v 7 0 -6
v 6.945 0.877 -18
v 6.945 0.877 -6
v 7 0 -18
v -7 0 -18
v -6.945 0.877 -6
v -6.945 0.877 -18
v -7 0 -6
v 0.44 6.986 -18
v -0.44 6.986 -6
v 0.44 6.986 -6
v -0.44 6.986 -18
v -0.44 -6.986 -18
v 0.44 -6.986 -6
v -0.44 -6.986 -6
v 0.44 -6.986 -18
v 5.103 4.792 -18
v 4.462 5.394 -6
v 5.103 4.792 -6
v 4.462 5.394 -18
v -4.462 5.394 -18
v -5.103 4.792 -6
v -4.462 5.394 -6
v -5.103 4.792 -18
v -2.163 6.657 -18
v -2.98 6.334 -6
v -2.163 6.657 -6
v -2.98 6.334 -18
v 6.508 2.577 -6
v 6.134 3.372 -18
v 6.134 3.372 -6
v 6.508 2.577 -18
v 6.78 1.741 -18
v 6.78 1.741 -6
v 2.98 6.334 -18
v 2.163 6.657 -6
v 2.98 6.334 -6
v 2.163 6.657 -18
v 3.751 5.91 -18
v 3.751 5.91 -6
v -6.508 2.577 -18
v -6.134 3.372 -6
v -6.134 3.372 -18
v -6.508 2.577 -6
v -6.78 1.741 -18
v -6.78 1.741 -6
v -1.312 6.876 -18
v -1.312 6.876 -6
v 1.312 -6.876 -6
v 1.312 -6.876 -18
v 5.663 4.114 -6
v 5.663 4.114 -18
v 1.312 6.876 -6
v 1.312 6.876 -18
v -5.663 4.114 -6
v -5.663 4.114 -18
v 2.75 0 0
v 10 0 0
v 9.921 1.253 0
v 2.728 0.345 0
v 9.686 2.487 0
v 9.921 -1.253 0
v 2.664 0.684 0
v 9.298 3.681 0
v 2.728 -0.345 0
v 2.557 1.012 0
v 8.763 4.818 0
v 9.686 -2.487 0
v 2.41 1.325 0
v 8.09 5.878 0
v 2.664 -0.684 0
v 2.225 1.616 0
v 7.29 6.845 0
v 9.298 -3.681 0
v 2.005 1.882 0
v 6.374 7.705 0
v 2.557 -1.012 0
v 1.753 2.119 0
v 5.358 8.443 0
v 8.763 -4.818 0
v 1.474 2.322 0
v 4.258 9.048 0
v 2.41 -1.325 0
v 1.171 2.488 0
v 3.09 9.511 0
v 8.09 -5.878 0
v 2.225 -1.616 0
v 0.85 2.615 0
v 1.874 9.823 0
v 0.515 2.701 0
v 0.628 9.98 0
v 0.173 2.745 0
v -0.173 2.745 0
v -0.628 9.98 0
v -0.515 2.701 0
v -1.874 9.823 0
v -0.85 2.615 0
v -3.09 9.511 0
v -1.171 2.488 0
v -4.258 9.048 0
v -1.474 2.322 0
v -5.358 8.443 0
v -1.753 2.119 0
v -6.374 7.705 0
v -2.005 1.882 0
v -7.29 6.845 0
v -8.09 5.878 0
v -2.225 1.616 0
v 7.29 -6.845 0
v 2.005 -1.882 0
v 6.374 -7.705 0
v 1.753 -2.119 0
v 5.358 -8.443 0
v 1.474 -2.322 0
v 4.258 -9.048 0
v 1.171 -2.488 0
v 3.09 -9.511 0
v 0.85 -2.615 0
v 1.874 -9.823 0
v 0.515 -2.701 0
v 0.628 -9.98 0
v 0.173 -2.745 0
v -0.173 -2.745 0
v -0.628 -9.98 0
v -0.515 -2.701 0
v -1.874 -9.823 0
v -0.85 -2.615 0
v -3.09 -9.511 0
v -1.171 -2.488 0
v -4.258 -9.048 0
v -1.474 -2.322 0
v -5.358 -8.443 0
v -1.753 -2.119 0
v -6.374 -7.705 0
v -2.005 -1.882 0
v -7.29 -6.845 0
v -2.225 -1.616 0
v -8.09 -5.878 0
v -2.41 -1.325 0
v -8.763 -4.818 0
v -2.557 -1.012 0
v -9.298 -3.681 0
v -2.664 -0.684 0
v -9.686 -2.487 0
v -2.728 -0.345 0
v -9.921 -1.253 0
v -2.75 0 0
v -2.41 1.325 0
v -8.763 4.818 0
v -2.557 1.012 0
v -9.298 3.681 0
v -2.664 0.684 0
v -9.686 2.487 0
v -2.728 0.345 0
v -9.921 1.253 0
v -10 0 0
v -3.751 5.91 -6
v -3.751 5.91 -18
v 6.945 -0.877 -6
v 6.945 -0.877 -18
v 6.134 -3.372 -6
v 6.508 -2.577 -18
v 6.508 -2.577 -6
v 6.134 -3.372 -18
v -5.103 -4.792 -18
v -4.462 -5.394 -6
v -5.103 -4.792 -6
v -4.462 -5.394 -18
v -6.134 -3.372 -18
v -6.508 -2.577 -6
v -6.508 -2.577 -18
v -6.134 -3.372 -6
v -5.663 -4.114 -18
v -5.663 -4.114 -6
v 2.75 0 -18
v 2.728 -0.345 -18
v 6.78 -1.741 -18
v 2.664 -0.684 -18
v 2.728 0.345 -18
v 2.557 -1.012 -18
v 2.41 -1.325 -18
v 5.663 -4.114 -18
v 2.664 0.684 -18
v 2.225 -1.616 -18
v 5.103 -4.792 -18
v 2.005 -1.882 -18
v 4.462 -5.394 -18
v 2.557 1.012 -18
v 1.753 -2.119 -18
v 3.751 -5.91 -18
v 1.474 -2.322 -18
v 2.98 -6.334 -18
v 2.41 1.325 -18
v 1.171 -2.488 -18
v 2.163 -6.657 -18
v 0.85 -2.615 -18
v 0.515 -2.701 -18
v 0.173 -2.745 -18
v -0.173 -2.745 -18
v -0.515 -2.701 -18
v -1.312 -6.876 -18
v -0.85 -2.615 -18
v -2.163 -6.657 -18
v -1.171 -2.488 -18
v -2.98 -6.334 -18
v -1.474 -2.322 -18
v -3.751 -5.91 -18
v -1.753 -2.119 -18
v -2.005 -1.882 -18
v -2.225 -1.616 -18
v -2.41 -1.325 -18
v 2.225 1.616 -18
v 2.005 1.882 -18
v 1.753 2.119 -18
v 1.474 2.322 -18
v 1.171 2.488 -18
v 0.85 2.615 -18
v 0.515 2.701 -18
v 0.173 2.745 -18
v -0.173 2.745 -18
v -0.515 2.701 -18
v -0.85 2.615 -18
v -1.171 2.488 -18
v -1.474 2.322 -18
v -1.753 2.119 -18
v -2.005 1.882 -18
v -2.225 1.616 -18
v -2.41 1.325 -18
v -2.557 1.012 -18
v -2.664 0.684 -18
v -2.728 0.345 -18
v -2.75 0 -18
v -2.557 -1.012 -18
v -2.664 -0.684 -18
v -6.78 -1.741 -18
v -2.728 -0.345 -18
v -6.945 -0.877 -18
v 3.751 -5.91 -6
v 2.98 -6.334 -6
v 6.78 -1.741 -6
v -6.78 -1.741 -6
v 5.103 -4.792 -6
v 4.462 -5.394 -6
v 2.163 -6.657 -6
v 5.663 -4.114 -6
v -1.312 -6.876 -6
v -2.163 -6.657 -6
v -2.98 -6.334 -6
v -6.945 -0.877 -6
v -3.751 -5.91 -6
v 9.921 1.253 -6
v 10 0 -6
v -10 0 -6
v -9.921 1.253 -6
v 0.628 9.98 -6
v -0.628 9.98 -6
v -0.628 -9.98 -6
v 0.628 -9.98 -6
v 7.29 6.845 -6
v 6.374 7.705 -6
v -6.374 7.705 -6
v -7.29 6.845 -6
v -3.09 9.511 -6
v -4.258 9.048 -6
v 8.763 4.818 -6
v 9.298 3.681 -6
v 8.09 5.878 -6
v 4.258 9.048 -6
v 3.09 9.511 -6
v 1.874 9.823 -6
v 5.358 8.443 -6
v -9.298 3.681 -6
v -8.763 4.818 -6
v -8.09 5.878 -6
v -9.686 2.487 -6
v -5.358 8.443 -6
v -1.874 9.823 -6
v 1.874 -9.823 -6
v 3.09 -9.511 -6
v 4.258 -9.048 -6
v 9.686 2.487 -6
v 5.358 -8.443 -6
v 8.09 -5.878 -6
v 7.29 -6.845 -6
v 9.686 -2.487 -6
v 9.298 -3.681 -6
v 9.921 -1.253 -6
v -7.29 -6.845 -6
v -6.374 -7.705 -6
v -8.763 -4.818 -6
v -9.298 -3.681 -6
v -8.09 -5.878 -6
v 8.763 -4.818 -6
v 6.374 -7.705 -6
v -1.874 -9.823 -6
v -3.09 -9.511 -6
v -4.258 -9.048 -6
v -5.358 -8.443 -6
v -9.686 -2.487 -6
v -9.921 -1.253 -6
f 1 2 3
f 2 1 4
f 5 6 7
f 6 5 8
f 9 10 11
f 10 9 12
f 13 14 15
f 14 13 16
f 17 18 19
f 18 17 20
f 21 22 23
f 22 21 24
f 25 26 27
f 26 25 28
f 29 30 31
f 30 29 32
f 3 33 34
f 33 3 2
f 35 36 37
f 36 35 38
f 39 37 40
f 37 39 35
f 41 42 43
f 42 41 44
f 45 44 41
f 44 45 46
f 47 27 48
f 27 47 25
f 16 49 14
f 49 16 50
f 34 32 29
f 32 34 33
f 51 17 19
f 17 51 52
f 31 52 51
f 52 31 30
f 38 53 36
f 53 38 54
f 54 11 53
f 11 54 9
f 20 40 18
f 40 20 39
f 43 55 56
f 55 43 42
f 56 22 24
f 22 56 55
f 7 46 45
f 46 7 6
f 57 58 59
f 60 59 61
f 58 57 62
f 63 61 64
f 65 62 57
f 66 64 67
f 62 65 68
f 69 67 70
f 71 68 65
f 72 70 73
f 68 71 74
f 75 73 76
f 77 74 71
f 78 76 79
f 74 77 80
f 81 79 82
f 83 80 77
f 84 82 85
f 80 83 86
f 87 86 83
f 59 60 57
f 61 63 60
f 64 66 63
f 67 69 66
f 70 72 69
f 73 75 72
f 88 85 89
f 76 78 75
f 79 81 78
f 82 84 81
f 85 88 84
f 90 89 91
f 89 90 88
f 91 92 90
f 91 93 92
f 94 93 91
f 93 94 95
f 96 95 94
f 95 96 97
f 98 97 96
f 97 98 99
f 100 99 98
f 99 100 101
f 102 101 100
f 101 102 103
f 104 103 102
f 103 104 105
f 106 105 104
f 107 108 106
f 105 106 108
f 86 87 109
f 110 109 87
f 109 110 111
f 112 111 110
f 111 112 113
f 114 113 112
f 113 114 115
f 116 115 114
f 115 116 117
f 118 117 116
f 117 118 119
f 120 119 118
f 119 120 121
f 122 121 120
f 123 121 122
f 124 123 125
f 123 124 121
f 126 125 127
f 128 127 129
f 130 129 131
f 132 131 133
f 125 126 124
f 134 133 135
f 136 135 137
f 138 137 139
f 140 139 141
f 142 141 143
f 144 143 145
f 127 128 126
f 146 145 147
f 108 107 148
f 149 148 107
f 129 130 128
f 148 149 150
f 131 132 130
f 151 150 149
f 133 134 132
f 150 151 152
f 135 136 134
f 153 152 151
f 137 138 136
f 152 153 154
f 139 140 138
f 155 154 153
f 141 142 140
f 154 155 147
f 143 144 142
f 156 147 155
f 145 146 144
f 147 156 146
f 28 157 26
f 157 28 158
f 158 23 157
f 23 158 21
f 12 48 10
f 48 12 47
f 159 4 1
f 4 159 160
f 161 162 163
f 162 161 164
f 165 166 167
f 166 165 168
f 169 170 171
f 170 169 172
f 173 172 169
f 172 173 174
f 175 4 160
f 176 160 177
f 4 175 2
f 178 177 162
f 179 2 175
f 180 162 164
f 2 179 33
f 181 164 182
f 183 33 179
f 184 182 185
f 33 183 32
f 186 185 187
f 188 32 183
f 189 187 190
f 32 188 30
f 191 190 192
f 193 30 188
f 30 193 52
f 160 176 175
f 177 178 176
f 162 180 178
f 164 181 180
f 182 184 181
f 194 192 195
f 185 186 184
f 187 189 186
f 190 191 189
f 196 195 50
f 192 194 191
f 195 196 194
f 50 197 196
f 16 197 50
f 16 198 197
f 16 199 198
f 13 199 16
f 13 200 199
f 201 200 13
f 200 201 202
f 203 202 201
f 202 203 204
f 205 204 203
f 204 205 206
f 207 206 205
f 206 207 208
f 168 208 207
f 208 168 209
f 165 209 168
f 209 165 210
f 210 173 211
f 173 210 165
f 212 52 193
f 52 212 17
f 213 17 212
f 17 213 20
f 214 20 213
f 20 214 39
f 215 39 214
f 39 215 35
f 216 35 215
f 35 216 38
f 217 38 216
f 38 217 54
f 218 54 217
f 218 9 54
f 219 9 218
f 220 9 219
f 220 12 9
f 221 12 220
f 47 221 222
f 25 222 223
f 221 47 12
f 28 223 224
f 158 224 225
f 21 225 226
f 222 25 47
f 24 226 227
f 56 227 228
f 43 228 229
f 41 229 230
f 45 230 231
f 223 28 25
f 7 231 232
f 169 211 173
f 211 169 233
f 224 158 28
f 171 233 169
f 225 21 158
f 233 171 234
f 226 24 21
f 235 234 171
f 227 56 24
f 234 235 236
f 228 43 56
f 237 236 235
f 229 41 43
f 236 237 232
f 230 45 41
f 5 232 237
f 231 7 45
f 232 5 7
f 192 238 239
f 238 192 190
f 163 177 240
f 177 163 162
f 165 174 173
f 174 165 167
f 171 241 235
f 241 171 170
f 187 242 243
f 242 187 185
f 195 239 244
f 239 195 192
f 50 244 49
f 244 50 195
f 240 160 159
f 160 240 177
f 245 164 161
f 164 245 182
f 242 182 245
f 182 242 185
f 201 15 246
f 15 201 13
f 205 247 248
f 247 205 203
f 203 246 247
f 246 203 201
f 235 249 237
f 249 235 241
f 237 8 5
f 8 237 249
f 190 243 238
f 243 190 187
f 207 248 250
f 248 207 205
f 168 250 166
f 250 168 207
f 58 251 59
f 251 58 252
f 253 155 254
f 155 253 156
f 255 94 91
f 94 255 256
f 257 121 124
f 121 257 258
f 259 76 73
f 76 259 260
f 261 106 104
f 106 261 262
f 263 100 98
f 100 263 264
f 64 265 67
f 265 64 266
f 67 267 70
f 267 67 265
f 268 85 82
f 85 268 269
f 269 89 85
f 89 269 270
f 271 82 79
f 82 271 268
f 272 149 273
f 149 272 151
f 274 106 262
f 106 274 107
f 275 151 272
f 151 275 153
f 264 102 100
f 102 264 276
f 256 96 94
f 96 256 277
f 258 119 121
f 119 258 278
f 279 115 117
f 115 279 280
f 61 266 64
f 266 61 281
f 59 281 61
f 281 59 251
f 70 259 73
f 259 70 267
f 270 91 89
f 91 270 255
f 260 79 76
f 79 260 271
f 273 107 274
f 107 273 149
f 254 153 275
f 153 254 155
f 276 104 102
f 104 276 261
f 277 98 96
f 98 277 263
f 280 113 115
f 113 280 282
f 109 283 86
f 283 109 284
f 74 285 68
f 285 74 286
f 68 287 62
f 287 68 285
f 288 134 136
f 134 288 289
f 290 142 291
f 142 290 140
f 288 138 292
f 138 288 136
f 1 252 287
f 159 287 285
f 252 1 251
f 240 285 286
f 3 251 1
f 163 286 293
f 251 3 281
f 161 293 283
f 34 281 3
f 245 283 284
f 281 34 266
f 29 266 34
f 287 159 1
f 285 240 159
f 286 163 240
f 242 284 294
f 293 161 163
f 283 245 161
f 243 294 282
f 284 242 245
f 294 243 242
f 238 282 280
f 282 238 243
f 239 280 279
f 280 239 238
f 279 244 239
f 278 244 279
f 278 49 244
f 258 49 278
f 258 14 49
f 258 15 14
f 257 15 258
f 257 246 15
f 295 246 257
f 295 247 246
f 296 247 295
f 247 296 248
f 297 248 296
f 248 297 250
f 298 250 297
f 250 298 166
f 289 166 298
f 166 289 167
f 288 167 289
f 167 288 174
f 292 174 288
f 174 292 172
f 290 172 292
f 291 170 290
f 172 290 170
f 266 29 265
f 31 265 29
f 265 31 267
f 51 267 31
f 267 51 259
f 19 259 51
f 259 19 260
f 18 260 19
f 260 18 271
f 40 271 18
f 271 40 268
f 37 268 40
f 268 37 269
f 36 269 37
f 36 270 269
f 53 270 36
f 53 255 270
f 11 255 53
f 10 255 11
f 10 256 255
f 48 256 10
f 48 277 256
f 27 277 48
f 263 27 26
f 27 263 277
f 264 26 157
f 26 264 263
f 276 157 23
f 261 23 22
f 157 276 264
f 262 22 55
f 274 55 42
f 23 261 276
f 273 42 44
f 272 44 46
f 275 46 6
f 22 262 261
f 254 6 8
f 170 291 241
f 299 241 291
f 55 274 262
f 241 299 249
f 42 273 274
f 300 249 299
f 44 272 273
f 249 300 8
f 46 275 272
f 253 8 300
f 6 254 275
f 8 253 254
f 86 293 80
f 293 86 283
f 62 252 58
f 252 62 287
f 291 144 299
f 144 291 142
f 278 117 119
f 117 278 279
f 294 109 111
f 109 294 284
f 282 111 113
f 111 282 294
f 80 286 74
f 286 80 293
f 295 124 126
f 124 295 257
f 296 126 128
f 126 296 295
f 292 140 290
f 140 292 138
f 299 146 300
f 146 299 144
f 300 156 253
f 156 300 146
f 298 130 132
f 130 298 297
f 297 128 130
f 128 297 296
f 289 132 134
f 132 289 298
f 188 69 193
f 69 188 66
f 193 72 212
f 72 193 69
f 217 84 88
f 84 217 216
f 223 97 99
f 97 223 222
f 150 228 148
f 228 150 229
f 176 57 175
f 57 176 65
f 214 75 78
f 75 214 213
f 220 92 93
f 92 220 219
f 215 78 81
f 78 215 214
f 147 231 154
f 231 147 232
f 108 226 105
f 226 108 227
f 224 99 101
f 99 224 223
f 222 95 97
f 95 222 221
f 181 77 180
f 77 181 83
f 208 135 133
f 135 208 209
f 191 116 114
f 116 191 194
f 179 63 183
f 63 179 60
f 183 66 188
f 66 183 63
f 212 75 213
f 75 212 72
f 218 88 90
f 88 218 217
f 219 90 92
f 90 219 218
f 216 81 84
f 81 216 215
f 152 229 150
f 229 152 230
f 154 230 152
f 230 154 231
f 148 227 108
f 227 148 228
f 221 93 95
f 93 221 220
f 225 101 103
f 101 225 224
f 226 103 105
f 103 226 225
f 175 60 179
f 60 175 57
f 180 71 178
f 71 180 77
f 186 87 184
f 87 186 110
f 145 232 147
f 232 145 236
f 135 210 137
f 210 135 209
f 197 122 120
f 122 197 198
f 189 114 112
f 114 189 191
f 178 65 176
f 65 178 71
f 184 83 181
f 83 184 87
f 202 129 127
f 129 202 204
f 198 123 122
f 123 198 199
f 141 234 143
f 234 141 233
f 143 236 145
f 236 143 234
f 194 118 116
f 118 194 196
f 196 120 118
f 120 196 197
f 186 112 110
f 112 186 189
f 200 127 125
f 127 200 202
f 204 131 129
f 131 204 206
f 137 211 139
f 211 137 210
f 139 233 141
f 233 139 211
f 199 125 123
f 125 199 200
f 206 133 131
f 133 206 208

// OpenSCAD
$fn = 50;


difference() {
	union() {
		translate(v = [0, 0, -18.0000000000]) {
			cylinder(h = 18, r = 7.0000000000);
		}
		translate(v = [0, 0, -6.0000000000]) {
			cylinder(h = 6, r = 10.0000000000);
		}
	}
	union() {
		#translate(v = [0, 0, -18]) {
			cylinder(h = 18, r = 2.7500000000);
		}
	}
}
